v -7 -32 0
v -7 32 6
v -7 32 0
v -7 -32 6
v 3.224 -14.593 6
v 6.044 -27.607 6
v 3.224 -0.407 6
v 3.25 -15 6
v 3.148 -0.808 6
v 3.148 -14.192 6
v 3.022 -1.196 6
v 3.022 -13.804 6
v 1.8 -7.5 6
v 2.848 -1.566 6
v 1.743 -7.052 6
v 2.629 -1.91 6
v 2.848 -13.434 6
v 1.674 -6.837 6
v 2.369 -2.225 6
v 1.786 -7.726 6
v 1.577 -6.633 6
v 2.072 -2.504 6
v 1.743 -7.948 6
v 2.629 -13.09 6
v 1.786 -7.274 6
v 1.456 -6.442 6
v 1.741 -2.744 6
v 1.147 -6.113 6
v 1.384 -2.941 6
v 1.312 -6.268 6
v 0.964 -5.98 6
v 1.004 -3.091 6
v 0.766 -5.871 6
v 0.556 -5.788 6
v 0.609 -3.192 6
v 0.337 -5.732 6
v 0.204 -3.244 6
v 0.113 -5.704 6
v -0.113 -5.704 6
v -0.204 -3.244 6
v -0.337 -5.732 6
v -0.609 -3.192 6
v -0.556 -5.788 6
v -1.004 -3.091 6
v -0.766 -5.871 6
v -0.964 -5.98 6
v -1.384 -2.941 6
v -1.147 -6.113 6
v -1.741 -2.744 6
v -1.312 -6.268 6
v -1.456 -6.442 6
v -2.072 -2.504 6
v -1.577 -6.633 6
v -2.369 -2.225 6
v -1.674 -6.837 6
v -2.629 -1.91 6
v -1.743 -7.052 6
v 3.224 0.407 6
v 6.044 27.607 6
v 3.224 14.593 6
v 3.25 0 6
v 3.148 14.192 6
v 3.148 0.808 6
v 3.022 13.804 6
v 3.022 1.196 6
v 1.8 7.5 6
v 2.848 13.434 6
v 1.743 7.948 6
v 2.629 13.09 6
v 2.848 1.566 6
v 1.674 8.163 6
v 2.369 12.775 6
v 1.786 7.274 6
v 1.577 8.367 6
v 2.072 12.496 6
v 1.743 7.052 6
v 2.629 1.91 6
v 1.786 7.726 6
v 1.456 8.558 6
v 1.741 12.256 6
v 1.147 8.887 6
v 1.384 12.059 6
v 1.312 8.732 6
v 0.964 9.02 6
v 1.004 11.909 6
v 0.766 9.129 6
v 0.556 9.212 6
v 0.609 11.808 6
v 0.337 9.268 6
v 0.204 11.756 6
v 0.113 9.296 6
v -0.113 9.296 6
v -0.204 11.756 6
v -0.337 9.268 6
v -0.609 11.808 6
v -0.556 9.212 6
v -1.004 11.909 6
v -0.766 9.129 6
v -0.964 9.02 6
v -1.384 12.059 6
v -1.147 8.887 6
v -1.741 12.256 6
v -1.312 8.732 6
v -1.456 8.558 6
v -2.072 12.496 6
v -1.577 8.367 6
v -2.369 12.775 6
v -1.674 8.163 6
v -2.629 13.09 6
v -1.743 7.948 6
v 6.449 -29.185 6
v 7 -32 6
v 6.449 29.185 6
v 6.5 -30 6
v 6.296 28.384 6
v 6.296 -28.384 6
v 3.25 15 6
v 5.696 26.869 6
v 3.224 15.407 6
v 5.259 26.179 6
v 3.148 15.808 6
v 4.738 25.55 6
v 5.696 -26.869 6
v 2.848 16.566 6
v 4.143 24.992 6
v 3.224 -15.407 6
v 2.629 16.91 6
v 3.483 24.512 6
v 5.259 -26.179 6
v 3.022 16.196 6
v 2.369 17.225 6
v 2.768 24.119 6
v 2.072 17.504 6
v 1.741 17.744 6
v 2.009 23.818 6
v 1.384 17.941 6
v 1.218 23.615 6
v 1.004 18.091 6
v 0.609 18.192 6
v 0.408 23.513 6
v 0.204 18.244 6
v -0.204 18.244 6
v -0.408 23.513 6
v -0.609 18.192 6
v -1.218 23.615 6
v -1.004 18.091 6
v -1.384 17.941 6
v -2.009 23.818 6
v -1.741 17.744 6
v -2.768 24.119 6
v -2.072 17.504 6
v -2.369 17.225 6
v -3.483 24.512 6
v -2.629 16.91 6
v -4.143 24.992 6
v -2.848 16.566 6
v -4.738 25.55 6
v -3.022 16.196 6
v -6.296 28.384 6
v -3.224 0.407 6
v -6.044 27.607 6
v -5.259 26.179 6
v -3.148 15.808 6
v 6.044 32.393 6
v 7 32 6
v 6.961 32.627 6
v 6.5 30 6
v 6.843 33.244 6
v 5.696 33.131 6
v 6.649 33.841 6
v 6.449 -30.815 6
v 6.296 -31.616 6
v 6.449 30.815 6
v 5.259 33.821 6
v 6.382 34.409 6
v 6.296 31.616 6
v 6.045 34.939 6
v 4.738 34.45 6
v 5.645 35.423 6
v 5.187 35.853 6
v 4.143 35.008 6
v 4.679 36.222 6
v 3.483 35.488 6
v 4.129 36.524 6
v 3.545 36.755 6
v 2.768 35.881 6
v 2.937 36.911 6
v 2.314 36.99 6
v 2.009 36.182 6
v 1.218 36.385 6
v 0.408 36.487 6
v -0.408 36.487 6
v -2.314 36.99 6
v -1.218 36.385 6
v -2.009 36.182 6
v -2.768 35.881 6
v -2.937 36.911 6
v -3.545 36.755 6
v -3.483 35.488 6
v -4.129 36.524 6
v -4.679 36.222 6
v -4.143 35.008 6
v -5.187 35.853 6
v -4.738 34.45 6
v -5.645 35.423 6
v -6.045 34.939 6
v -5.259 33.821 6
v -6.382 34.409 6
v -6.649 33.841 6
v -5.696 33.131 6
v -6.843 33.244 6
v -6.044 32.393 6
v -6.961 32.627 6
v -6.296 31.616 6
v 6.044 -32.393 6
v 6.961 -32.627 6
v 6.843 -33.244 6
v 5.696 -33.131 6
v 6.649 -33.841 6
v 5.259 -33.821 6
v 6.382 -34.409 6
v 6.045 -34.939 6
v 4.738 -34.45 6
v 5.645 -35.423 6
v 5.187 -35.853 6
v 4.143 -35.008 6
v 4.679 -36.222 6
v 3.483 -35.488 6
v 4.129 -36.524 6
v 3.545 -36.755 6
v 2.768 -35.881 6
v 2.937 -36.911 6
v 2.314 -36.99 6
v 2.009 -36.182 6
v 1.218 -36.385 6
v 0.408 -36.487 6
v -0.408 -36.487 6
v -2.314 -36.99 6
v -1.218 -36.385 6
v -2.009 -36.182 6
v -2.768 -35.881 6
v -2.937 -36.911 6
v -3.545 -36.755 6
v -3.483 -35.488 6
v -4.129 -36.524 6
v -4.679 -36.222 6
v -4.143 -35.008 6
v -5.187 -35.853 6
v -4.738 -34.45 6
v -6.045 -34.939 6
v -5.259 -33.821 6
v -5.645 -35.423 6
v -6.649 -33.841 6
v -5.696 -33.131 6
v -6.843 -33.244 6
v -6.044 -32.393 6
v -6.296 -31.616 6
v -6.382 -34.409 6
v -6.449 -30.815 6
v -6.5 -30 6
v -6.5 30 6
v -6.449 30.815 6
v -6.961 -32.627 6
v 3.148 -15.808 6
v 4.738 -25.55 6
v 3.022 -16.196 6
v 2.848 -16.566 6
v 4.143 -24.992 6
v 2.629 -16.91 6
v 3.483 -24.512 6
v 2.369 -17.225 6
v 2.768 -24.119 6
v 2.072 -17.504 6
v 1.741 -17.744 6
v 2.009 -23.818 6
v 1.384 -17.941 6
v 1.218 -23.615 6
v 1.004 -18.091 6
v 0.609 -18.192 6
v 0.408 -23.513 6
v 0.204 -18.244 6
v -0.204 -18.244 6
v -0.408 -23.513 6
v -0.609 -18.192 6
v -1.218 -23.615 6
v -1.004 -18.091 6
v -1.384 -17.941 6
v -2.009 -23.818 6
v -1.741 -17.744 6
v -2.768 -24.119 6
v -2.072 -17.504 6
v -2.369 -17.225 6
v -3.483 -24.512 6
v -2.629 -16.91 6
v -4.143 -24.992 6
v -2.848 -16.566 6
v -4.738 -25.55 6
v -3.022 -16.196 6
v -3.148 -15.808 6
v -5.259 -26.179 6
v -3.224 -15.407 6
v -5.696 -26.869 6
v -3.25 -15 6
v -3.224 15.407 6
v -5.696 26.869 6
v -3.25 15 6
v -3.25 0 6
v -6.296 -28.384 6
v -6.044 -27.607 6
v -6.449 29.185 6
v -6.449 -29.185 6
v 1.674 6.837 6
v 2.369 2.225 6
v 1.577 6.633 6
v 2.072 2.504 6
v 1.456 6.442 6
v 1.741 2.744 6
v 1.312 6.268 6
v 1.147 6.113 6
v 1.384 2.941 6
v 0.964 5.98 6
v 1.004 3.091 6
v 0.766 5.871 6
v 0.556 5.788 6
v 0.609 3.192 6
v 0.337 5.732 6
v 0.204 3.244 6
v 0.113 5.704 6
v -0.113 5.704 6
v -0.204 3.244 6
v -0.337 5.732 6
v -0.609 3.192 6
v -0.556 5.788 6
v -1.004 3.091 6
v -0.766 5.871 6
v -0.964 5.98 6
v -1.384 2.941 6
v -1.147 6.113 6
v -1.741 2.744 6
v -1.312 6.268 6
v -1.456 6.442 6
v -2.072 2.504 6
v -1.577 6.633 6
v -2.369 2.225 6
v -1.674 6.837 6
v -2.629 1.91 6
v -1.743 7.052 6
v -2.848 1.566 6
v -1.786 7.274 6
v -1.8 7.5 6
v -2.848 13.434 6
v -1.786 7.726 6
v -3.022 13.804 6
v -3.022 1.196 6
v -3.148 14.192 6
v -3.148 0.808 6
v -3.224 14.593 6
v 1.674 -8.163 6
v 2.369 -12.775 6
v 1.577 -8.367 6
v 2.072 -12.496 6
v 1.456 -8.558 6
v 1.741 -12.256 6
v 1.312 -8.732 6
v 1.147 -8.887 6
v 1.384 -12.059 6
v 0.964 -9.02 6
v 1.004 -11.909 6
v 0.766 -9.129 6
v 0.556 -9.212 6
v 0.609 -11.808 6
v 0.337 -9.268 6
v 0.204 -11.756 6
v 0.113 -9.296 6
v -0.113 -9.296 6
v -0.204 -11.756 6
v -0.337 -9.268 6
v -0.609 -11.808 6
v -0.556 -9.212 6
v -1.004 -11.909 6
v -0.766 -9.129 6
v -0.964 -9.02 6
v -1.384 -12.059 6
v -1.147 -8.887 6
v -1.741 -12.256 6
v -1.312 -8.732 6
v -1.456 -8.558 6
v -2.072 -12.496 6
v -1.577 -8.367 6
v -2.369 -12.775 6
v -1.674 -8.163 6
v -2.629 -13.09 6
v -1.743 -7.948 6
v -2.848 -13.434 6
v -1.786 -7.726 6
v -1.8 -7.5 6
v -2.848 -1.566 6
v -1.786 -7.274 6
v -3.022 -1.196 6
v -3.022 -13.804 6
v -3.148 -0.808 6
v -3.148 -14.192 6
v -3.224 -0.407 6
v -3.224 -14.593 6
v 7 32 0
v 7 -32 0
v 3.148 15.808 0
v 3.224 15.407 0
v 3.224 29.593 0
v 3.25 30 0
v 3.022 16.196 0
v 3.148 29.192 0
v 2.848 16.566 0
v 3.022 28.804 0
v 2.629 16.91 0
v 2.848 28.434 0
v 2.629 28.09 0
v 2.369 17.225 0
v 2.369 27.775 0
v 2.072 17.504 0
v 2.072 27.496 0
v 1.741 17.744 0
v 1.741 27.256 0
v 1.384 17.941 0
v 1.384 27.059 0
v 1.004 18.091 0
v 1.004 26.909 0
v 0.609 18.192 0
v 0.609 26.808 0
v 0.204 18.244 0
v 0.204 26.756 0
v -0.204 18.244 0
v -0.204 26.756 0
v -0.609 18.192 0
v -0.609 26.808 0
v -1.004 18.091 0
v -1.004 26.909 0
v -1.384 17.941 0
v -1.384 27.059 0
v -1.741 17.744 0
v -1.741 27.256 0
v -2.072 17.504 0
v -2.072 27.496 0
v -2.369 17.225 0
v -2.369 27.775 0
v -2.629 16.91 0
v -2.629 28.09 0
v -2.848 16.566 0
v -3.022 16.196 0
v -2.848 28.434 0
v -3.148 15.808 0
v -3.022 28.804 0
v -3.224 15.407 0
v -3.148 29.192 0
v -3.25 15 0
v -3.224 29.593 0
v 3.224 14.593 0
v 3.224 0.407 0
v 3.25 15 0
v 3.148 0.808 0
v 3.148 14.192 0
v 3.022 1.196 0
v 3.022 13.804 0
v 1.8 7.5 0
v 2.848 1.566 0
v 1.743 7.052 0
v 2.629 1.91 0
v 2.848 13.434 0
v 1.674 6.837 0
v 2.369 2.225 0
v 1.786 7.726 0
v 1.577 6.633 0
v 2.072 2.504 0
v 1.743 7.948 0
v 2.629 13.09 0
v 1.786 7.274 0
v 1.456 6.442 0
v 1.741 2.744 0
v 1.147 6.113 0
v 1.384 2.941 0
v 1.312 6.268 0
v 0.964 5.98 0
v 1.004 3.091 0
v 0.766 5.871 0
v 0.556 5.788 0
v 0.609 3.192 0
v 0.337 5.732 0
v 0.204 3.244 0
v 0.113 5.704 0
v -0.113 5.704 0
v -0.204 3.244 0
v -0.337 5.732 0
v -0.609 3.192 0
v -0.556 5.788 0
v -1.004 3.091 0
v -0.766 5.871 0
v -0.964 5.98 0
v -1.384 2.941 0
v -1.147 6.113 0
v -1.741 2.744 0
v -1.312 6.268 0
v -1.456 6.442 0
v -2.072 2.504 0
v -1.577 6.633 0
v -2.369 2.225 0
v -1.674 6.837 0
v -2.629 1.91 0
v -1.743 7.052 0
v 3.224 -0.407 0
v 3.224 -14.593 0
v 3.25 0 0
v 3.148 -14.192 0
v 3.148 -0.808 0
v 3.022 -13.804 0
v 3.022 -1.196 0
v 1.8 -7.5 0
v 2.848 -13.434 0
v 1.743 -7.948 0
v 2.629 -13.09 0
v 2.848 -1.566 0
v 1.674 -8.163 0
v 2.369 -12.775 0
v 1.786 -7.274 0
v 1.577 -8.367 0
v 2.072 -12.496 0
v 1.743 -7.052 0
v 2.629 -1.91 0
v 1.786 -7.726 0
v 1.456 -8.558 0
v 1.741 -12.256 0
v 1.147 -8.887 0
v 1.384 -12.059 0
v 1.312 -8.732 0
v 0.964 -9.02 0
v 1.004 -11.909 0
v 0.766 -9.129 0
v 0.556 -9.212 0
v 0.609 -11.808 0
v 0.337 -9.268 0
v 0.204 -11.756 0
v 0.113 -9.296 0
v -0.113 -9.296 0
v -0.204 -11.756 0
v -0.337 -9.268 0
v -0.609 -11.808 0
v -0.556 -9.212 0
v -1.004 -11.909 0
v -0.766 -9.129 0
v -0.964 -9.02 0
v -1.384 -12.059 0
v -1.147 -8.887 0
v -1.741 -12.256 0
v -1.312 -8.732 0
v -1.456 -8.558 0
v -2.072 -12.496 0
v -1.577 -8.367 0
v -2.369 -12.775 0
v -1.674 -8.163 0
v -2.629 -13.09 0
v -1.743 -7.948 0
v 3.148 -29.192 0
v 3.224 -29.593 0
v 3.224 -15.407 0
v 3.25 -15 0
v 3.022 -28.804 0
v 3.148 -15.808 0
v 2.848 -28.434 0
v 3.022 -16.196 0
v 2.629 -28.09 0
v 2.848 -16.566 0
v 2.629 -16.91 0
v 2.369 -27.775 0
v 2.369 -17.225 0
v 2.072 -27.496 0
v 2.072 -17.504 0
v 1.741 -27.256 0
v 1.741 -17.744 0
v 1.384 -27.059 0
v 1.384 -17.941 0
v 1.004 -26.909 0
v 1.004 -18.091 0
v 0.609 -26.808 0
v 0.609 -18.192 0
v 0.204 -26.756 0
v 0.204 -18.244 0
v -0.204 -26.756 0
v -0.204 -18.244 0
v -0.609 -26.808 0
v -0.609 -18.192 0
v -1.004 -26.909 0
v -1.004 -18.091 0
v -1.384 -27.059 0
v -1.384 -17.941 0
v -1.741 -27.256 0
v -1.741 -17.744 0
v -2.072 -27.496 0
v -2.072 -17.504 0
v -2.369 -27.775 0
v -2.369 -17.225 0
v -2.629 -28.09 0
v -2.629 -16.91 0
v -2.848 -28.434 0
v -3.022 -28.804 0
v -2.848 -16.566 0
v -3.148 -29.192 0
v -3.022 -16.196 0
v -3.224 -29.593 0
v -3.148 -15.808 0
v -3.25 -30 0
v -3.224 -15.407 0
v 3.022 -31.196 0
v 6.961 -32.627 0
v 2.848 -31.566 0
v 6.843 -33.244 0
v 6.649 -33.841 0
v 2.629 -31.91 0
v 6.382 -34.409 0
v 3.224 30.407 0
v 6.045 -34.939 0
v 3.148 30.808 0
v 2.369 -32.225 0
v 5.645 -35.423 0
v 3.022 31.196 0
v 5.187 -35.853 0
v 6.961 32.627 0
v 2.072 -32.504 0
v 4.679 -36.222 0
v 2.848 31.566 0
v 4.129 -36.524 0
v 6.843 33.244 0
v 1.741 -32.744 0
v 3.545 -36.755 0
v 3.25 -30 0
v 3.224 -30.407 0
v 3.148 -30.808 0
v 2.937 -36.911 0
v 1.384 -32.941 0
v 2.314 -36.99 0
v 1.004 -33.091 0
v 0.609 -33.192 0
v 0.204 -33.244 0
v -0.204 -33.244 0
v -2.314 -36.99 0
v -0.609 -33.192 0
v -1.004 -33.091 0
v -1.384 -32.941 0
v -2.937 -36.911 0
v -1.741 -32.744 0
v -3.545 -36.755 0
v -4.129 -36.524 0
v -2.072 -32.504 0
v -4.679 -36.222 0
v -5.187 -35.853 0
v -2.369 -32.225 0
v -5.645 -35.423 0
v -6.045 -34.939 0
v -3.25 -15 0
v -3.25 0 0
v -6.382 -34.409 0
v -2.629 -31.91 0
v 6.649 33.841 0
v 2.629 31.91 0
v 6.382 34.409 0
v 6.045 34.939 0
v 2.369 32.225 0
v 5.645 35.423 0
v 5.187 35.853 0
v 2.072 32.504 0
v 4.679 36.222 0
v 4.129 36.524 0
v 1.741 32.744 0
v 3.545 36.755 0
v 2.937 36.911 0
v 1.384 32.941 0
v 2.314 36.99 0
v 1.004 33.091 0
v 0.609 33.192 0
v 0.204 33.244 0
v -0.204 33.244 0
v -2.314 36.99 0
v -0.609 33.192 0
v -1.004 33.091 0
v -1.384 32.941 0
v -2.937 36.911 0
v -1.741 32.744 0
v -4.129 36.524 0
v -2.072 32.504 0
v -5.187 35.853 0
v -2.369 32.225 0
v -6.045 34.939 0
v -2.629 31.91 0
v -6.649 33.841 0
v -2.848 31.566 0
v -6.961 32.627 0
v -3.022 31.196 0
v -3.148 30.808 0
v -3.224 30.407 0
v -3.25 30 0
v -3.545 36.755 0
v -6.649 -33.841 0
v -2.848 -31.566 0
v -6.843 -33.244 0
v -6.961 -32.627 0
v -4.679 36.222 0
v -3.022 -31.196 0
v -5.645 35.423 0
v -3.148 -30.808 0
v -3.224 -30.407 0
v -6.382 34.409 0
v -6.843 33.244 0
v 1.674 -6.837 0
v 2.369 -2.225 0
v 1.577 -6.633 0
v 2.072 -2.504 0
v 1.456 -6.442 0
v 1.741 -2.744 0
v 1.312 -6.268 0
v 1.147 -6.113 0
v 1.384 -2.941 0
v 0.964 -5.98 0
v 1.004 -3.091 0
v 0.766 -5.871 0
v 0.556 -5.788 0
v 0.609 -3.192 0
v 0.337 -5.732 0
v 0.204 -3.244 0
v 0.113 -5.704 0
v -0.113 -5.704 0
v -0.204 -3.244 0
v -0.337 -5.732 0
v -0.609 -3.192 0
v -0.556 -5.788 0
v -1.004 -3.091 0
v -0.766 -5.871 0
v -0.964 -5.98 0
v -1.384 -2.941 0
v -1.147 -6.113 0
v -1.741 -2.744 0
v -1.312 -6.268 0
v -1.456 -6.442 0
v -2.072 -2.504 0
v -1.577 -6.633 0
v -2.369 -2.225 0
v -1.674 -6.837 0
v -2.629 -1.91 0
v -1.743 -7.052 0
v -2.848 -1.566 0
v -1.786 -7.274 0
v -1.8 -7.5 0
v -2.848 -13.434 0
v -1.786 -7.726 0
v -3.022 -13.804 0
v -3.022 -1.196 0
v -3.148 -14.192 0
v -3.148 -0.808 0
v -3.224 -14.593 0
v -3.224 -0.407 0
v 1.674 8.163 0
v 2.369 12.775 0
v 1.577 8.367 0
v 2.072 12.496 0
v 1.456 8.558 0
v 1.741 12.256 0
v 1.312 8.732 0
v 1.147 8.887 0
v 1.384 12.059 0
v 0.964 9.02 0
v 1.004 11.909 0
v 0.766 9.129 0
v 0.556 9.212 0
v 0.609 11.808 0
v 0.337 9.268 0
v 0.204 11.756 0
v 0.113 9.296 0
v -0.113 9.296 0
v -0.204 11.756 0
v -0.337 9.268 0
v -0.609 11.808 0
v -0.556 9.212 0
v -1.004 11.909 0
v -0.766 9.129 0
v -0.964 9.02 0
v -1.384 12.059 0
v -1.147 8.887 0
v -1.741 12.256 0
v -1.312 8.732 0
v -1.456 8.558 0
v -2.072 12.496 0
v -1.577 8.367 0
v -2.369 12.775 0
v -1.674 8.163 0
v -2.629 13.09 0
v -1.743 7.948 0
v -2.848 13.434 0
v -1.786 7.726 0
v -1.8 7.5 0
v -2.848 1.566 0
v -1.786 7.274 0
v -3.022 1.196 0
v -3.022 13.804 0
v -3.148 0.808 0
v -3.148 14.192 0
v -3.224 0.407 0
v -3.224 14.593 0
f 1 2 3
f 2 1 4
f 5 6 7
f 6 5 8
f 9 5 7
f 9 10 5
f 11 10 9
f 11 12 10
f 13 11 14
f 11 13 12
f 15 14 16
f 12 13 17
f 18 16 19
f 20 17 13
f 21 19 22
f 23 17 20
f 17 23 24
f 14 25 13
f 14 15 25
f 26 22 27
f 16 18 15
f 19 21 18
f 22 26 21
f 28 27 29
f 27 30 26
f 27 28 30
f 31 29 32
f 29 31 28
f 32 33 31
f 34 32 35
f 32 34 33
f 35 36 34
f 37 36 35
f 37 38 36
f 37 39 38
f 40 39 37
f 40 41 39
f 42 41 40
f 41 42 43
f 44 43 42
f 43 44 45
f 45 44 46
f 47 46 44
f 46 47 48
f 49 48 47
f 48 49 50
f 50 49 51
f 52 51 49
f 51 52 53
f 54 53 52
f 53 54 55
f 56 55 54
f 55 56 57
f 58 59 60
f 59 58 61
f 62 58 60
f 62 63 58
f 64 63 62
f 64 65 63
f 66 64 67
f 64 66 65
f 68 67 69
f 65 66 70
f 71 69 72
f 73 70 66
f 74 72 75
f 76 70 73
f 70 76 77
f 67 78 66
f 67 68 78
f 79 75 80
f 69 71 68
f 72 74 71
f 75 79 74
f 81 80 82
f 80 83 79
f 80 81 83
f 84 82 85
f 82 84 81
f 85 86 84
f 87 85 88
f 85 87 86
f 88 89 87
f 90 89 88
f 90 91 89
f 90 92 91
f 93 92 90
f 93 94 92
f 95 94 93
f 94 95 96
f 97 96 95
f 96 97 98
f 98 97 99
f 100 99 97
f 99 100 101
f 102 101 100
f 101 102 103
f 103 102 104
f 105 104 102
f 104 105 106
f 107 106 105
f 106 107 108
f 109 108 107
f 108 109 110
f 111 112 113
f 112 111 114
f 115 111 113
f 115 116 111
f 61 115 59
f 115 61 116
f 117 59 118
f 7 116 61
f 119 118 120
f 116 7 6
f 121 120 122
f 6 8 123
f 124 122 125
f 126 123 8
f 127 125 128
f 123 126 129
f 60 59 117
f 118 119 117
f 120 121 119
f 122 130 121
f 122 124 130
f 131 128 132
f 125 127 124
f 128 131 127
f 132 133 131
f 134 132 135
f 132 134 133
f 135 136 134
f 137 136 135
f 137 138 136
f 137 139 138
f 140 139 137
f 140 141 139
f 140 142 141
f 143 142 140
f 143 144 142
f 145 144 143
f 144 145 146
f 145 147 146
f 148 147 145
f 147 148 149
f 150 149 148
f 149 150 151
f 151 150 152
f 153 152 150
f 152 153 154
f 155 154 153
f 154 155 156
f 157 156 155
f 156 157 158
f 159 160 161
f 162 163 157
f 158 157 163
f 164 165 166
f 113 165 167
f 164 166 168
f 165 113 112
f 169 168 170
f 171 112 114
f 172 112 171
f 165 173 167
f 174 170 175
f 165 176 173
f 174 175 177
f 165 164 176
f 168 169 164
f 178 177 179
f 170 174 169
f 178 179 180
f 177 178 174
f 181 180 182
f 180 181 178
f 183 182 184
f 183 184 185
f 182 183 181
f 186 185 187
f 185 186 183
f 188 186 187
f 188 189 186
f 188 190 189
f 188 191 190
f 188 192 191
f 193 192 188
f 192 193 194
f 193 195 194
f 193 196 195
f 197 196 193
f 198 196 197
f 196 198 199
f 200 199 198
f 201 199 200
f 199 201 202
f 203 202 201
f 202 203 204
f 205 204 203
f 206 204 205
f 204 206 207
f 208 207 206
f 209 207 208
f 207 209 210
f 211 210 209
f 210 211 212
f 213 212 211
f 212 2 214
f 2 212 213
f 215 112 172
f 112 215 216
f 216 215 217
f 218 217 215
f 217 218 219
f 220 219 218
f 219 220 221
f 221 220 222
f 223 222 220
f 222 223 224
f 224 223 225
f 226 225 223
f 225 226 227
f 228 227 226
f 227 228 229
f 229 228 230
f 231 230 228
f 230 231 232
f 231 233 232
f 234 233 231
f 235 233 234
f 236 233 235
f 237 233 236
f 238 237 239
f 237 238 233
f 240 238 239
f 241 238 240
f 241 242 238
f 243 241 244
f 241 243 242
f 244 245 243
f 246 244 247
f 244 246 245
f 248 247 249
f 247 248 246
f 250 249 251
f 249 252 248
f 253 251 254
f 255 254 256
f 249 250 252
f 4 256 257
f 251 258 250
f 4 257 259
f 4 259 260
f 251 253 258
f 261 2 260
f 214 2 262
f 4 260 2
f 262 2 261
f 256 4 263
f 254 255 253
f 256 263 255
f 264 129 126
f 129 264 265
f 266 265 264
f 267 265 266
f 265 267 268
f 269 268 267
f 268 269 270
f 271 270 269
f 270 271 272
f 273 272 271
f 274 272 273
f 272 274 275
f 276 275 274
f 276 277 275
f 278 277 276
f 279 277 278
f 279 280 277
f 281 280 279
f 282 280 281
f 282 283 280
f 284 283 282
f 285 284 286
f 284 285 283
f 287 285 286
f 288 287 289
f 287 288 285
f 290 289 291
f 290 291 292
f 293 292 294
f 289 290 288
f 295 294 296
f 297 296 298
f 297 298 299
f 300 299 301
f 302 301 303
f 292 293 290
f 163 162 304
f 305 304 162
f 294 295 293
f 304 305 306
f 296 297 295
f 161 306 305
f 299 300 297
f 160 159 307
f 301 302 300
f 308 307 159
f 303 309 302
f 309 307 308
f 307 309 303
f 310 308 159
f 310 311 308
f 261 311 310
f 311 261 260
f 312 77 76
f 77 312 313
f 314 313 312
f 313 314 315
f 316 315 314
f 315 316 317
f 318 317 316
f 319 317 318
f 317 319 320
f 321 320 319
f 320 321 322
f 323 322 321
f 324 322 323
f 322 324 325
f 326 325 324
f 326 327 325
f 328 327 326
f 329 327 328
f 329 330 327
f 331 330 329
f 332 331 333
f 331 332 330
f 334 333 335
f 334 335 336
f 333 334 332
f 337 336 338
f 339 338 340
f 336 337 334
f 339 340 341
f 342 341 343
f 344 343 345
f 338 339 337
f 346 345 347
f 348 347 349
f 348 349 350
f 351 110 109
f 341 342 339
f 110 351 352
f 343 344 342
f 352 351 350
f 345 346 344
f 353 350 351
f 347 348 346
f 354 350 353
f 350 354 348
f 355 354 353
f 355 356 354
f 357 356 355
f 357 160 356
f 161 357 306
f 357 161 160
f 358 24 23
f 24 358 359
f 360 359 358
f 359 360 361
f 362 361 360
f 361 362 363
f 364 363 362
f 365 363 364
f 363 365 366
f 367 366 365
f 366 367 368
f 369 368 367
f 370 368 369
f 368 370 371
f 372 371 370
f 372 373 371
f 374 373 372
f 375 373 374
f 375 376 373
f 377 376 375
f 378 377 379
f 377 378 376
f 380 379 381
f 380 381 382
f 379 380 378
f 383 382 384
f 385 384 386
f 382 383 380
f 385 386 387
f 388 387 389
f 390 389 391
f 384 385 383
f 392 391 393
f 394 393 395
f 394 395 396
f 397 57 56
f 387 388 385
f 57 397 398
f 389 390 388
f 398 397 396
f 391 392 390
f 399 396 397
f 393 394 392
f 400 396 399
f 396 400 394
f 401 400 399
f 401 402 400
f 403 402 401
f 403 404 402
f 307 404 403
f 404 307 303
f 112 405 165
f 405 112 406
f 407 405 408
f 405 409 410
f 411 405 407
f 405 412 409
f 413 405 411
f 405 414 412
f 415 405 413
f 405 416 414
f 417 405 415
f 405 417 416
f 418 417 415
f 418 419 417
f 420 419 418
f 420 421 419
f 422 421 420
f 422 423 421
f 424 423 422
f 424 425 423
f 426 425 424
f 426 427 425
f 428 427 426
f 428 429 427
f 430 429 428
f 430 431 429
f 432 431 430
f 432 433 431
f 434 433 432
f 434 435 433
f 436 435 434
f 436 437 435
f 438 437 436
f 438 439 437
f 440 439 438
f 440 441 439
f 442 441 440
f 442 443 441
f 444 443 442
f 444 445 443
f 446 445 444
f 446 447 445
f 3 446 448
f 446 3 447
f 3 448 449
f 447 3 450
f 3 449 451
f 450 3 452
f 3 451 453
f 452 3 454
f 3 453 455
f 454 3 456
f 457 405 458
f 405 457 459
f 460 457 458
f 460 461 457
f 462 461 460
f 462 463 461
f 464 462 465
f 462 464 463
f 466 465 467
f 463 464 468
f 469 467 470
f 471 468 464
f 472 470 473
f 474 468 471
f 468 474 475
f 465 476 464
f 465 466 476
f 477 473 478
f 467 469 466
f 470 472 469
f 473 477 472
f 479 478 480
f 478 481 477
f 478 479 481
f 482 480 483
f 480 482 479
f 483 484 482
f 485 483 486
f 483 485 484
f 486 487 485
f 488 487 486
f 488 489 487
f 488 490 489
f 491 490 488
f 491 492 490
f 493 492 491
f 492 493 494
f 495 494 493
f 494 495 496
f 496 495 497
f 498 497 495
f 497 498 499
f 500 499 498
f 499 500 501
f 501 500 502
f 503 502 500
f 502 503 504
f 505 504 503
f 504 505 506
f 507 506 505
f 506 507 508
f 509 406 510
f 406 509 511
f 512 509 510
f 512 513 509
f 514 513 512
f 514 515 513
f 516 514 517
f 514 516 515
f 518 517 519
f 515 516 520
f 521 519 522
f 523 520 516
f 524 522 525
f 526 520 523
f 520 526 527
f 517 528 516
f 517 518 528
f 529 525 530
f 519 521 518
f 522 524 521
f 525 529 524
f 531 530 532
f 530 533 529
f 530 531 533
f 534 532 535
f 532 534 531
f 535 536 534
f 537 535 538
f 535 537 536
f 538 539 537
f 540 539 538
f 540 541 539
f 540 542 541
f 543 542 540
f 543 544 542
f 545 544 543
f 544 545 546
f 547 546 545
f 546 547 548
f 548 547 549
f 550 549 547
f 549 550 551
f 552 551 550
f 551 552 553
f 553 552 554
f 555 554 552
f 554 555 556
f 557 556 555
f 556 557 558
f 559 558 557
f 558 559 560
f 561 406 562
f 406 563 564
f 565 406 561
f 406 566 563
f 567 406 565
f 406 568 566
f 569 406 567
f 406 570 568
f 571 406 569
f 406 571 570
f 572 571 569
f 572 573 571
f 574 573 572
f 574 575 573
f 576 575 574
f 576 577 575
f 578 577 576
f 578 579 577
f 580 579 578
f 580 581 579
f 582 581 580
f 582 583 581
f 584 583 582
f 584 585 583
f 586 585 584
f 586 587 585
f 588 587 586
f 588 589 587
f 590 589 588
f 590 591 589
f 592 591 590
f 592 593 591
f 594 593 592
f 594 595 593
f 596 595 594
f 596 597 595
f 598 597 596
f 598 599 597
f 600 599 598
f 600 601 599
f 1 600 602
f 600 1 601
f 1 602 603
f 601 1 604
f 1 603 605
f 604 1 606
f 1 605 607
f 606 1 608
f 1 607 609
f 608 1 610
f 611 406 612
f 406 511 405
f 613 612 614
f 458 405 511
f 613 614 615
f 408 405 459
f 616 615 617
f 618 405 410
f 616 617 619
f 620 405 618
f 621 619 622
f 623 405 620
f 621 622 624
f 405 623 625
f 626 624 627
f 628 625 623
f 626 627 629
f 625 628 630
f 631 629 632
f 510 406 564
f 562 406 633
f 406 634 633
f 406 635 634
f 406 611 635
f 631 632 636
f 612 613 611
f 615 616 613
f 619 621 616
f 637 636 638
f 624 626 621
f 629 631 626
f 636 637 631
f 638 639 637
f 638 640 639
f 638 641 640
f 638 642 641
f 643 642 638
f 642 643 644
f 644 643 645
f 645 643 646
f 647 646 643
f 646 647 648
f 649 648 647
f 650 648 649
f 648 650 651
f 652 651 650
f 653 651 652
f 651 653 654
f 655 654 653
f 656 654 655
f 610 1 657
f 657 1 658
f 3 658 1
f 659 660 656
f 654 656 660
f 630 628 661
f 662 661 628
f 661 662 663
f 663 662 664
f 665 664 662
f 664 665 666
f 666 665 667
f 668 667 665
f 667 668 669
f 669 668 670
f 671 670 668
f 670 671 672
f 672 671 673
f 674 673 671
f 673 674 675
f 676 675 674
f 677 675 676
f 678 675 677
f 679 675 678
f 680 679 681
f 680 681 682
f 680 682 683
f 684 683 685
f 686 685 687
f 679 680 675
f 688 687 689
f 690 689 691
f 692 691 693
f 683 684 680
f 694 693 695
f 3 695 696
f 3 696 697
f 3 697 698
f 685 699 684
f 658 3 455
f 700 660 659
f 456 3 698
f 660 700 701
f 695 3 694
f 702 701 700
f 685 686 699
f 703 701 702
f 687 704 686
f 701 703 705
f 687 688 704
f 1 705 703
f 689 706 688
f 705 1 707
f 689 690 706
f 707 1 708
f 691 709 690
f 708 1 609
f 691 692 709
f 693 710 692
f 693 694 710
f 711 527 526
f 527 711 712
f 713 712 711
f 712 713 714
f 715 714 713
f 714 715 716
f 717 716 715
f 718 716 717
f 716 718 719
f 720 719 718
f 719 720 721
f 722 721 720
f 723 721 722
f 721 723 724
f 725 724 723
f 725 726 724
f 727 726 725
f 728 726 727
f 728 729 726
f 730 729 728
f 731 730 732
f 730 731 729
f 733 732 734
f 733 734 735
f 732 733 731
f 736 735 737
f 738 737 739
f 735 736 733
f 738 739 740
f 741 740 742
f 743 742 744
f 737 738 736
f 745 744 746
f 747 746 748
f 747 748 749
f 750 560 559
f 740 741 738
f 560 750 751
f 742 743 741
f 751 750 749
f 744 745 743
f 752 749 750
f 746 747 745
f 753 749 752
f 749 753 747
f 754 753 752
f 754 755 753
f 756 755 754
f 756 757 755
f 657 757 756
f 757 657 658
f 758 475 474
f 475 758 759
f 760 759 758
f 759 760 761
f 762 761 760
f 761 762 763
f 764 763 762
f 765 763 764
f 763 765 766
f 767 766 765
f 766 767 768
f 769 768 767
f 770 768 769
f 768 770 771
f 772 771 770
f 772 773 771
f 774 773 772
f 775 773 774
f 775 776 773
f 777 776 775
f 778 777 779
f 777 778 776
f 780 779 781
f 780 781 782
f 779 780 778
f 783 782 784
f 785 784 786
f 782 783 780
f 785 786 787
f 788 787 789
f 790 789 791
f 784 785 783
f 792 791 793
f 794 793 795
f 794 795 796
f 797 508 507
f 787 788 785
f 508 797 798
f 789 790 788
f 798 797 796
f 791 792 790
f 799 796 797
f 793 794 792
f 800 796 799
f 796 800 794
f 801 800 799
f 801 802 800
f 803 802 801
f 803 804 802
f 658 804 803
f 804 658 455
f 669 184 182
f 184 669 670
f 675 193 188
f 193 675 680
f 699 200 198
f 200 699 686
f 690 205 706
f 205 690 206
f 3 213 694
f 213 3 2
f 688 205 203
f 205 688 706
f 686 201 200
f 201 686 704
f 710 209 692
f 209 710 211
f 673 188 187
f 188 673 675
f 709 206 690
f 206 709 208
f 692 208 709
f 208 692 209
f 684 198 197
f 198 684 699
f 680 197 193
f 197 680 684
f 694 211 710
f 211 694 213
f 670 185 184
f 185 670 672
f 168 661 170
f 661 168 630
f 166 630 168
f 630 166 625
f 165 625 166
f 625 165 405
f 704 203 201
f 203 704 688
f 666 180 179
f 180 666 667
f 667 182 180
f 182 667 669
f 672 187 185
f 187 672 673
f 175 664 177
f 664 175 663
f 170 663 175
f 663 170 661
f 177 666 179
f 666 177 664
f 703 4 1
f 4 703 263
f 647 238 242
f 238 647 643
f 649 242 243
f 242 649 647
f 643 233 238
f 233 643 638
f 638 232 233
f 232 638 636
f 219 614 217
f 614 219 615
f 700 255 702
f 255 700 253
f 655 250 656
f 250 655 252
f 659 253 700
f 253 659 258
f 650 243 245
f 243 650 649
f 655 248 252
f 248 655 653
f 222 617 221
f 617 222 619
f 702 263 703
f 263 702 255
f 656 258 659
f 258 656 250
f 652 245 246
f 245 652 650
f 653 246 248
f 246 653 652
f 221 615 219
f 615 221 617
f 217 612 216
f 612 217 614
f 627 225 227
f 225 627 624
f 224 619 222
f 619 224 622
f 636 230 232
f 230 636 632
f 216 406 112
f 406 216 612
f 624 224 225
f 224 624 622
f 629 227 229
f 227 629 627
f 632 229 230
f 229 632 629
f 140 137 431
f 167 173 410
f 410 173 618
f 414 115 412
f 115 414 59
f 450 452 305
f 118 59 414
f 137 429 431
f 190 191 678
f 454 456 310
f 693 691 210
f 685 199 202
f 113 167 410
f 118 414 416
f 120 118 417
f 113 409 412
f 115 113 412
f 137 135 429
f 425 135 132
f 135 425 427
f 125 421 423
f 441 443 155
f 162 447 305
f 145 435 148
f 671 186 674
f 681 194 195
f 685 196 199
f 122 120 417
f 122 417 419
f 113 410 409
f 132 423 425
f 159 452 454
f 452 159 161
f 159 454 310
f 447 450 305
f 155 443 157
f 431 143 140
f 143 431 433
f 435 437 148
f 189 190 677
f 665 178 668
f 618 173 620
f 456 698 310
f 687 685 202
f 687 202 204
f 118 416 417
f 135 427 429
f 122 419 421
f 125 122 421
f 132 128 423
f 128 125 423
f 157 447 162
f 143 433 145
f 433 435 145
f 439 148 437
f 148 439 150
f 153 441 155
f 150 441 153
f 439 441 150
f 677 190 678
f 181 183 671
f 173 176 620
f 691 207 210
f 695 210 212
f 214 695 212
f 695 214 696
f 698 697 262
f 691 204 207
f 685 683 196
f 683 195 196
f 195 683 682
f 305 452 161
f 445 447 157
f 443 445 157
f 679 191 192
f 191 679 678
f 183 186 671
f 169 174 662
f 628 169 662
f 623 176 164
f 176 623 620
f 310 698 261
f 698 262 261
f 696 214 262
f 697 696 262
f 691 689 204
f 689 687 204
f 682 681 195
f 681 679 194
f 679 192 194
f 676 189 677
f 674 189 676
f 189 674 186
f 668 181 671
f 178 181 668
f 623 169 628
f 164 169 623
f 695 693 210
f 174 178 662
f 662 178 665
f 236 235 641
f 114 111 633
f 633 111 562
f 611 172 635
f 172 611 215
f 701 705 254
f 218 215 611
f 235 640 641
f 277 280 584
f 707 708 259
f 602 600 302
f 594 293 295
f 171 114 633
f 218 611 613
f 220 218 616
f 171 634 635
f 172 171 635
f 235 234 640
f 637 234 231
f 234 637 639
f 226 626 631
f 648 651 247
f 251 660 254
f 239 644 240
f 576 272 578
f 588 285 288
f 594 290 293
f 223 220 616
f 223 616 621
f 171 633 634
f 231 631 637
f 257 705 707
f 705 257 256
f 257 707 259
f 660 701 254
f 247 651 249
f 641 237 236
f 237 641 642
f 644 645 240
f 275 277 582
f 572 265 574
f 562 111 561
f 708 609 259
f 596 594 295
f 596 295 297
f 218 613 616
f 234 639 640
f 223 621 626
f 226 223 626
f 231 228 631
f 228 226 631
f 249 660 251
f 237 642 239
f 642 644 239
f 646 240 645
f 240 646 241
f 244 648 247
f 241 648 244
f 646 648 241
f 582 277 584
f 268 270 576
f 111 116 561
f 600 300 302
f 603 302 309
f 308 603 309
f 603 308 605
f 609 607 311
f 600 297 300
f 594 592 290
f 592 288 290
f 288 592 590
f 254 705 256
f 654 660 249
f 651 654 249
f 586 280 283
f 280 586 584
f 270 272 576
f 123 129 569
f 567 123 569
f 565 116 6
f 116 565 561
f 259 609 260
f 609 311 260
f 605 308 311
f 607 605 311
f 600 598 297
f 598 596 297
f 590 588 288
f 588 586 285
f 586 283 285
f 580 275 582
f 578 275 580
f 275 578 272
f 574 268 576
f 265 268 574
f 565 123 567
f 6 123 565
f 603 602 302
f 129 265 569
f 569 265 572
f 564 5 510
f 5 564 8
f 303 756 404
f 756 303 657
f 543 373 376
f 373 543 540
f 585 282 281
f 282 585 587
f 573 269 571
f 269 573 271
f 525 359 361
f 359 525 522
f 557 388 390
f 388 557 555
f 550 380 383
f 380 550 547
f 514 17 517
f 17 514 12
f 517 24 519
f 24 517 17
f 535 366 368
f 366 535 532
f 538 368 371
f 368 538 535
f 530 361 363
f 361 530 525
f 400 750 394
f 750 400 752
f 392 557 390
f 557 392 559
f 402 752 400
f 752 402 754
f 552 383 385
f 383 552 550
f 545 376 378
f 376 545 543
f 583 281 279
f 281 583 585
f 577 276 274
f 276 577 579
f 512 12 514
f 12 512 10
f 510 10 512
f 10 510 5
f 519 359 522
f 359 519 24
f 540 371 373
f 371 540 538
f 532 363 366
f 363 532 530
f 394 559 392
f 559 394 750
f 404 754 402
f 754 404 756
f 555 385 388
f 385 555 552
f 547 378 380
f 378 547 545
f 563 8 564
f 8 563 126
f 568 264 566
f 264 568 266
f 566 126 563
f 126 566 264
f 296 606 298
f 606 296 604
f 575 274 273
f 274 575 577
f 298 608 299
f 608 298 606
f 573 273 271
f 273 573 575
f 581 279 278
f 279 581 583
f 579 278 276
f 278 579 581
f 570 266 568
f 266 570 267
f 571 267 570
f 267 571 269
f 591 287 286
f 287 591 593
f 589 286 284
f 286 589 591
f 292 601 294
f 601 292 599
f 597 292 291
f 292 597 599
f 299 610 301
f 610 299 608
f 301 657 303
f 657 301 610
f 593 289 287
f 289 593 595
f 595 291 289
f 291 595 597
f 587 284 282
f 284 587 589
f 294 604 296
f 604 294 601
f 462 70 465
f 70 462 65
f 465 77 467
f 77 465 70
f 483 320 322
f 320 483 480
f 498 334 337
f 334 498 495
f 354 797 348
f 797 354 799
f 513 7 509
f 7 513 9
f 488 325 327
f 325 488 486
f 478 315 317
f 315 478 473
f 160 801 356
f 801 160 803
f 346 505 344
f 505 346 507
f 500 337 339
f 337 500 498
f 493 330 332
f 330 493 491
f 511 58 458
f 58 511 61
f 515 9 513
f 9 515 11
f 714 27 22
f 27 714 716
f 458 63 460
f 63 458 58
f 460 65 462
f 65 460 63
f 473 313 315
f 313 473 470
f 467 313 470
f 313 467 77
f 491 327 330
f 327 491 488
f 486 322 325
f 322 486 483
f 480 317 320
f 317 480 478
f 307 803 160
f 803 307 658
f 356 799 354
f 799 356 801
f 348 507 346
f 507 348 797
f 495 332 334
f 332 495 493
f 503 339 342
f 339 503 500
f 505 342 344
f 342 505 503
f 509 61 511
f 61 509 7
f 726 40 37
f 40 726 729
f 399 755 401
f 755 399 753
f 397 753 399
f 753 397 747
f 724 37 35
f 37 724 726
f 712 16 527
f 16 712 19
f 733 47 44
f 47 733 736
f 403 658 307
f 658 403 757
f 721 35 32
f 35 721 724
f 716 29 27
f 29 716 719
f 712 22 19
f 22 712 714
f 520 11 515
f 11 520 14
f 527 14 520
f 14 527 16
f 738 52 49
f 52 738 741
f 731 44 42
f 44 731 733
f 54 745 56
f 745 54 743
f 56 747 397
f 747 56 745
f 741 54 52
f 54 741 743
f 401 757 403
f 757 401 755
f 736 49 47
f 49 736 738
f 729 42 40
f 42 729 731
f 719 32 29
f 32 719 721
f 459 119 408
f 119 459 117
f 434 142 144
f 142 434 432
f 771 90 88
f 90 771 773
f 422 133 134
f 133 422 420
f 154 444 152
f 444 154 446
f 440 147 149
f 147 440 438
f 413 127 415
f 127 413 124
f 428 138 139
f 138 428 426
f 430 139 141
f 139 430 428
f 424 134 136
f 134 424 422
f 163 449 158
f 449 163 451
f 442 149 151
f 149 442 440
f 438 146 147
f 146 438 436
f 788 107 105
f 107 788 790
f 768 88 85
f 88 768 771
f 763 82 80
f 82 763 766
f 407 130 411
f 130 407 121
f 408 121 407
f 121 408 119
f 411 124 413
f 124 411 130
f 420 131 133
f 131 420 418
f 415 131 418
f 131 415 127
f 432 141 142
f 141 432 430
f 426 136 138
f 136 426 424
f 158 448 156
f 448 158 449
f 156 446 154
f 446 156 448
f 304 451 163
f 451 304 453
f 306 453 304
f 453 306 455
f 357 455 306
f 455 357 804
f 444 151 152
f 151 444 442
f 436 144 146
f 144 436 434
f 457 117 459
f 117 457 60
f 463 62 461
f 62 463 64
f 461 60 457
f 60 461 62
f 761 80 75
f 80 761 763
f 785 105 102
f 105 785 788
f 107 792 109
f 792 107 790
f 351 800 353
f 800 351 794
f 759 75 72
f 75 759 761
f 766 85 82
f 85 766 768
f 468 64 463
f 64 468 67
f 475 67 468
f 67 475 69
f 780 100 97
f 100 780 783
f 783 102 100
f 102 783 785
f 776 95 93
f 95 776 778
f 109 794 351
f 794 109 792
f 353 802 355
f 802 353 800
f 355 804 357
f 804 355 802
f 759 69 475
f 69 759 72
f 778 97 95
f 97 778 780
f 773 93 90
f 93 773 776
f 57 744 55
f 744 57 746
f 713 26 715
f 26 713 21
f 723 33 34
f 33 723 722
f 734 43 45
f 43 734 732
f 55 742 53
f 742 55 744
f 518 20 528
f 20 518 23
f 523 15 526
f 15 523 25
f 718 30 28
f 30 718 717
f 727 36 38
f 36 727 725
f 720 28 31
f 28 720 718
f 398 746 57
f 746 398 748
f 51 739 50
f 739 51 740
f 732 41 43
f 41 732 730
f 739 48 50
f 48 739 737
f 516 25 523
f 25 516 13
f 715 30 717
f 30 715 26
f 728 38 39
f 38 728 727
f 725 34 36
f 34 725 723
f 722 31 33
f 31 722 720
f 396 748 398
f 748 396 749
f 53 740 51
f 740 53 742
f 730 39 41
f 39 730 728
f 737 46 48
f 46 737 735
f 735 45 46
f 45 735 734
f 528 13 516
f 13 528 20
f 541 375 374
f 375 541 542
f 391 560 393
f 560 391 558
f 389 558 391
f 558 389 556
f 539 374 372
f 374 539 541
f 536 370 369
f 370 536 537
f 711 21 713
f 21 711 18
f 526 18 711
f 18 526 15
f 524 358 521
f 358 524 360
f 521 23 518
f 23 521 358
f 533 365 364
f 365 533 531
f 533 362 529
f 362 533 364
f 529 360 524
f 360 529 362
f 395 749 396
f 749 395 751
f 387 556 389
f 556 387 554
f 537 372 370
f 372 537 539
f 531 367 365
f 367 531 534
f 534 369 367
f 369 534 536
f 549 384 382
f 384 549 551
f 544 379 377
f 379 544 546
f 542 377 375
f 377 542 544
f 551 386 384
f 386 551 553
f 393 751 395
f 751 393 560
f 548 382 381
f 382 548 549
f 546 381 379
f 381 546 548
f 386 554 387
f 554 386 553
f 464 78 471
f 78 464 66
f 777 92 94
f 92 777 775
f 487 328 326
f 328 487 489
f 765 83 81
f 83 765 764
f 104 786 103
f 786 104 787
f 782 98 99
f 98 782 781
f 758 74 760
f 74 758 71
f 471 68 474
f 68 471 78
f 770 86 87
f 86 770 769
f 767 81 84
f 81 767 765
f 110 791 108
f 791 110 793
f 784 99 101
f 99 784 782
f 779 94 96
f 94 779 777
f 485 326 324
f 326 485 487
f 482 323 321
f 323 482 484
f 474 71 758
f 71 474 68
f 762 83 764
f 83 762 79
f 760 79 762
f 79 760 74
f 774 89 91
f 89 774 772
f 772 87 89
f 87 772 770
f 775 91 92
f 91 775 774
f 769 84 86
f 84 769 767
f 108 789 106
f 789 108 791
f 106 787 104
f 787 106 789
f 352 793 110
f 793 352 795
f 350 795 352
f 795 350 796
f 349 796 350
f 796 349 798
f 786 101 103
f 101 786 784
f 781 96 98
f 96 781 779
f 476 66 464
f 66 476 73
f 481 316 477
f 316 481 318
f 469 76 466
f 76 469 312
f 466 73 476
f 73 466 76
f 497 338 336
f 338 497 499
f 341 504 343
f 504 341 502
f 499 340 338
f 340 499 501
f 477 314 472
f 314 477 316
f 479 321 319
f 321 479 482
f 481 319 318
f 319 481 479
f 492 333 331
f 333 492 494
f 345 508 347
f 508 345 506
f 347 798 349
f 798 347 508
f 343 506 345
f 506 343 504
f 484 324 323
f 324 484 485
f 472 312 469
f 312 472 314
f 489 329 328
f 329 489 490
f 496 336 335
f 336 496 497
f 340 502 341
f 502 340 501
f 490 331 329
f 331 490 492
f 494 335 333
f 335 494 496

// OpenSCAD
$fn = 50;


difference() {
	union() {
		hull() {
			translate(v = [-2.0000000000, 17.0000000000, 0]) {
				cylinder(h = 6, r = 5);
			}
			translate(v = [2.0000000000, 17.0000000000, 0]) {
				cylinder(h = 6, r = 5);
			}
			translate(v = [-2.0000000000, -17.0000000000, 0]) {
				cylinder(h = 6, r = 5);
			}
			translate(v = [2.0000000000, -17.0000000000, 0]) {
				cylinder(h = 6, r = 5);
			}
		}
		translate(v = [0.0000000000, 22.5000000000, 0]) {
			hull() {
				translate(v = [-2.0000000000, 9.5000000000, 0]) {
					cylinder(h = 6, r = 5);
				}
				translate(v = [2.0000000000, 9.5000000000, 0]) {
					cylinder(h = 6, r = 5);
				}
				translate(v = [-2.0000000000, -9.5000000000, 0]) {
					cylinder(h = 6, r = 5);
				}
				translate(v = [2.0000000000, -9.5000000000, 0]) {
					cylinder(h = 6, r = 5);
				}
			}
		}
		translate(v = [0.0000000000, 22.5000000000, 0]) {
			hull() {
				translate(v = [-2.0000000000, 9.5000000000, 0]) {
					cylinder(h = 6, r = 5);
				}
				translate(v = [2.0000000000, 9.5000000000, 0]) {
					cylinder(h = 6, r = 5);
				}
				translate(v = [-2.0000000000, -9.5000000000, 0]) {
					cylinder(h = 6, r = 5);
				}
				translate(v = [2.0000000000, -9.5000000000, 0]) {
					cylinder(h = 6, r = 5);
				}
			}
		}
		translate(v = [0.0000000000, -22.5000000000, 0]) {
			hull() {
				translate(v = [-2.0000000000, 9.5000000000, 0]) {
					cylinder(h = 6, r = 5);
				}
				translate(v = [2.0000000000, 9.5000000000, 0]) {
					cylinder(h = 6, r = 5);
				}
				translate(v = [-2.0000000000, -9.5000000000, 0]) {
					cylinder(h = 6, r = 5);
				}
				translate(v = [2.0000000000, -9.5000000000, 0]) {
					cylinder(h = 6, r = 5);
				}
			}
		}
		translate(v = [0.0000000000, -22.5000000000, 0]) {
			hull() {
				translate(v = [-2.0000000000, 9.5000000000, 0]) {
					cylinder(h = 6, r = 5);
				}
				translate(v = [2.0000000000, 9.5000000000, 0]) {
					cylinder(h = 6, r = 5);
				}
				translate(v = [-2.0000000000, -9.5000000000, 0]) {
					cylinder(h = 6, r = 5);
				}
				translate(v = [2.0000000000, -9.5000000000, 0]) {
					cylinder(h = 6, r = 5);
				}
			}
		}
	}
	union() {
		translate(v = [0.0000000000, 30.0000000000, 6]) {
			rotate(a = [0, 0, 0]) {
				difference() {
					union() {
						#translate(v = [0, 0, -6.0000000000]) {
							cylinder(h = 6, r = 2.2500000000);
						}
						#translate(v = [0, 0, -6]) {
							cylinder(h = 6, r1 = 3.2500000000, r2 = 6.5000000000);
						}
						#translate(v = [0, 0, -6.0000000000]) {
							cylinder(h = 6, r = 3.2500000000);
						}
						#translate(v = [0, 0, -6.0000000000]) {
							cylinder(h = 6, r = 2.2500000000);
						}
					}
					union();
				}
			}
		}
		translate(v = [0.0000000000, 30.0000000000, 6]) {
			rotate(a = [0, 0, 0]) {
				difference() {
					union() {
						#translate(v = [0, 0, -6.0000000000]) {
							cylinder(h = 6, r = 2.2500000000);
						}
						#translate(v = [0, 0, -6]) {
							cylinder(h = 6, r1 = 3.2500000000, r2 = 6.5000000000);
						}
						#translate(v = [0, 0, -6.0000000000]) {
							cylinder(h = 6, r = 3.2500000000);
						}
						#translate(v = [0, 0, -6.0000000000]) {
							cylinder(h = 6, r = 2.2500000000);
						}
					}
					union();
				}
			}
		}
		translate(v = [0.0000000000, -30.0000000000, 6]) {
			rotate(a = [0, 0, 0]) {
				difference() {
					union() {
						#translate(v = [0, 0, -6.0000000000]) {
							cylinder(h = 6, r = 2.2500000000);
						}
						#translate(v = [0, 0, -6]) {
							cylinder(h = 6, r1 = 3.2500000000, r2 = 6.5000000000);
						}
						#translate(v = [0, 0, -6.0000000000]) {
							cylinder(h = 6, r = 3.2500000000);
						}
						#translate(v = [0, 0, -6.0000000000]) {
							cylinder(h = 6, r = 2.2500000000);
						}
					}
					union();
				}
			}
		}
		translate(v = [0.0000000000, -30.0000000000, 6]) {
			rotate(a = [0, 0, 0]) {
				difference() {
					union() {
						#translate(v = [0, 0, -6.0000000000]) {
							cylinder(h = 6, r = 2.2500000000);
						}
						#translate(v = [0, 0, -6]) {
							cylinder(h = 6, r1 = 3.2500000000, r2 = 6.5000000000);
						}
						#translate(v = [0, 0, -6.0000000000]) {
							cylinder(h = 6, r = 3.2500000000);
						}
						#translate(v = [0, 0, -6.0000000000]) {
							cylinder(h = 6, r = 2.2500000000);
						}
					}
					union();
				}
			}
		}
		translate(v = [0.0000000000, -15.0000000000, 0]) {
			translate(v = [0, 0, -100]) {
				cylinder(h = 200, r = 3.2500000000);
			}
		}
		translate(v = [0, 0, -100]) {
			cylinder(h = 200, r = 3.2500000000);
		}
		translate(v = [0.0000000000, 15.0000000000, 0]) {
			translate(v = [0, 0, -100]) {
				cylinder(h = 200, r = 3.2500000000);
			}
		}
		translate(v = [0.0000000000, -15.0000000000, 0]) {
			translate(v = [0, 0, -100]) {
				cylinder(h = 200, r = 1.8000000000);
			}
		}
		translate(v = [0.0000000000, -7.5000000000, 0]) {
			translate(v = [0, 0, -100]) {
				cylinder(h = 200, r = 1.8000000000);
			}
		}
		translate(v = [0, 0, -100]) {
			cylinder(h = 200, r = 1.8000000000);
		}
		translate(v = [0.0000000000, 7.5000000000, 0]) {
			translate(v = [0, 0, -100]) {
				cylinder(h = 200, r = 1.8000000000);
			}
		}
		translate(v = [0.0000000000, 15.0000000000, 0]) {
			translate(v = [0, 0, -100]) {
				cylinder(h = 200, r = 1.8000000000);
			}
		}
	}
}
